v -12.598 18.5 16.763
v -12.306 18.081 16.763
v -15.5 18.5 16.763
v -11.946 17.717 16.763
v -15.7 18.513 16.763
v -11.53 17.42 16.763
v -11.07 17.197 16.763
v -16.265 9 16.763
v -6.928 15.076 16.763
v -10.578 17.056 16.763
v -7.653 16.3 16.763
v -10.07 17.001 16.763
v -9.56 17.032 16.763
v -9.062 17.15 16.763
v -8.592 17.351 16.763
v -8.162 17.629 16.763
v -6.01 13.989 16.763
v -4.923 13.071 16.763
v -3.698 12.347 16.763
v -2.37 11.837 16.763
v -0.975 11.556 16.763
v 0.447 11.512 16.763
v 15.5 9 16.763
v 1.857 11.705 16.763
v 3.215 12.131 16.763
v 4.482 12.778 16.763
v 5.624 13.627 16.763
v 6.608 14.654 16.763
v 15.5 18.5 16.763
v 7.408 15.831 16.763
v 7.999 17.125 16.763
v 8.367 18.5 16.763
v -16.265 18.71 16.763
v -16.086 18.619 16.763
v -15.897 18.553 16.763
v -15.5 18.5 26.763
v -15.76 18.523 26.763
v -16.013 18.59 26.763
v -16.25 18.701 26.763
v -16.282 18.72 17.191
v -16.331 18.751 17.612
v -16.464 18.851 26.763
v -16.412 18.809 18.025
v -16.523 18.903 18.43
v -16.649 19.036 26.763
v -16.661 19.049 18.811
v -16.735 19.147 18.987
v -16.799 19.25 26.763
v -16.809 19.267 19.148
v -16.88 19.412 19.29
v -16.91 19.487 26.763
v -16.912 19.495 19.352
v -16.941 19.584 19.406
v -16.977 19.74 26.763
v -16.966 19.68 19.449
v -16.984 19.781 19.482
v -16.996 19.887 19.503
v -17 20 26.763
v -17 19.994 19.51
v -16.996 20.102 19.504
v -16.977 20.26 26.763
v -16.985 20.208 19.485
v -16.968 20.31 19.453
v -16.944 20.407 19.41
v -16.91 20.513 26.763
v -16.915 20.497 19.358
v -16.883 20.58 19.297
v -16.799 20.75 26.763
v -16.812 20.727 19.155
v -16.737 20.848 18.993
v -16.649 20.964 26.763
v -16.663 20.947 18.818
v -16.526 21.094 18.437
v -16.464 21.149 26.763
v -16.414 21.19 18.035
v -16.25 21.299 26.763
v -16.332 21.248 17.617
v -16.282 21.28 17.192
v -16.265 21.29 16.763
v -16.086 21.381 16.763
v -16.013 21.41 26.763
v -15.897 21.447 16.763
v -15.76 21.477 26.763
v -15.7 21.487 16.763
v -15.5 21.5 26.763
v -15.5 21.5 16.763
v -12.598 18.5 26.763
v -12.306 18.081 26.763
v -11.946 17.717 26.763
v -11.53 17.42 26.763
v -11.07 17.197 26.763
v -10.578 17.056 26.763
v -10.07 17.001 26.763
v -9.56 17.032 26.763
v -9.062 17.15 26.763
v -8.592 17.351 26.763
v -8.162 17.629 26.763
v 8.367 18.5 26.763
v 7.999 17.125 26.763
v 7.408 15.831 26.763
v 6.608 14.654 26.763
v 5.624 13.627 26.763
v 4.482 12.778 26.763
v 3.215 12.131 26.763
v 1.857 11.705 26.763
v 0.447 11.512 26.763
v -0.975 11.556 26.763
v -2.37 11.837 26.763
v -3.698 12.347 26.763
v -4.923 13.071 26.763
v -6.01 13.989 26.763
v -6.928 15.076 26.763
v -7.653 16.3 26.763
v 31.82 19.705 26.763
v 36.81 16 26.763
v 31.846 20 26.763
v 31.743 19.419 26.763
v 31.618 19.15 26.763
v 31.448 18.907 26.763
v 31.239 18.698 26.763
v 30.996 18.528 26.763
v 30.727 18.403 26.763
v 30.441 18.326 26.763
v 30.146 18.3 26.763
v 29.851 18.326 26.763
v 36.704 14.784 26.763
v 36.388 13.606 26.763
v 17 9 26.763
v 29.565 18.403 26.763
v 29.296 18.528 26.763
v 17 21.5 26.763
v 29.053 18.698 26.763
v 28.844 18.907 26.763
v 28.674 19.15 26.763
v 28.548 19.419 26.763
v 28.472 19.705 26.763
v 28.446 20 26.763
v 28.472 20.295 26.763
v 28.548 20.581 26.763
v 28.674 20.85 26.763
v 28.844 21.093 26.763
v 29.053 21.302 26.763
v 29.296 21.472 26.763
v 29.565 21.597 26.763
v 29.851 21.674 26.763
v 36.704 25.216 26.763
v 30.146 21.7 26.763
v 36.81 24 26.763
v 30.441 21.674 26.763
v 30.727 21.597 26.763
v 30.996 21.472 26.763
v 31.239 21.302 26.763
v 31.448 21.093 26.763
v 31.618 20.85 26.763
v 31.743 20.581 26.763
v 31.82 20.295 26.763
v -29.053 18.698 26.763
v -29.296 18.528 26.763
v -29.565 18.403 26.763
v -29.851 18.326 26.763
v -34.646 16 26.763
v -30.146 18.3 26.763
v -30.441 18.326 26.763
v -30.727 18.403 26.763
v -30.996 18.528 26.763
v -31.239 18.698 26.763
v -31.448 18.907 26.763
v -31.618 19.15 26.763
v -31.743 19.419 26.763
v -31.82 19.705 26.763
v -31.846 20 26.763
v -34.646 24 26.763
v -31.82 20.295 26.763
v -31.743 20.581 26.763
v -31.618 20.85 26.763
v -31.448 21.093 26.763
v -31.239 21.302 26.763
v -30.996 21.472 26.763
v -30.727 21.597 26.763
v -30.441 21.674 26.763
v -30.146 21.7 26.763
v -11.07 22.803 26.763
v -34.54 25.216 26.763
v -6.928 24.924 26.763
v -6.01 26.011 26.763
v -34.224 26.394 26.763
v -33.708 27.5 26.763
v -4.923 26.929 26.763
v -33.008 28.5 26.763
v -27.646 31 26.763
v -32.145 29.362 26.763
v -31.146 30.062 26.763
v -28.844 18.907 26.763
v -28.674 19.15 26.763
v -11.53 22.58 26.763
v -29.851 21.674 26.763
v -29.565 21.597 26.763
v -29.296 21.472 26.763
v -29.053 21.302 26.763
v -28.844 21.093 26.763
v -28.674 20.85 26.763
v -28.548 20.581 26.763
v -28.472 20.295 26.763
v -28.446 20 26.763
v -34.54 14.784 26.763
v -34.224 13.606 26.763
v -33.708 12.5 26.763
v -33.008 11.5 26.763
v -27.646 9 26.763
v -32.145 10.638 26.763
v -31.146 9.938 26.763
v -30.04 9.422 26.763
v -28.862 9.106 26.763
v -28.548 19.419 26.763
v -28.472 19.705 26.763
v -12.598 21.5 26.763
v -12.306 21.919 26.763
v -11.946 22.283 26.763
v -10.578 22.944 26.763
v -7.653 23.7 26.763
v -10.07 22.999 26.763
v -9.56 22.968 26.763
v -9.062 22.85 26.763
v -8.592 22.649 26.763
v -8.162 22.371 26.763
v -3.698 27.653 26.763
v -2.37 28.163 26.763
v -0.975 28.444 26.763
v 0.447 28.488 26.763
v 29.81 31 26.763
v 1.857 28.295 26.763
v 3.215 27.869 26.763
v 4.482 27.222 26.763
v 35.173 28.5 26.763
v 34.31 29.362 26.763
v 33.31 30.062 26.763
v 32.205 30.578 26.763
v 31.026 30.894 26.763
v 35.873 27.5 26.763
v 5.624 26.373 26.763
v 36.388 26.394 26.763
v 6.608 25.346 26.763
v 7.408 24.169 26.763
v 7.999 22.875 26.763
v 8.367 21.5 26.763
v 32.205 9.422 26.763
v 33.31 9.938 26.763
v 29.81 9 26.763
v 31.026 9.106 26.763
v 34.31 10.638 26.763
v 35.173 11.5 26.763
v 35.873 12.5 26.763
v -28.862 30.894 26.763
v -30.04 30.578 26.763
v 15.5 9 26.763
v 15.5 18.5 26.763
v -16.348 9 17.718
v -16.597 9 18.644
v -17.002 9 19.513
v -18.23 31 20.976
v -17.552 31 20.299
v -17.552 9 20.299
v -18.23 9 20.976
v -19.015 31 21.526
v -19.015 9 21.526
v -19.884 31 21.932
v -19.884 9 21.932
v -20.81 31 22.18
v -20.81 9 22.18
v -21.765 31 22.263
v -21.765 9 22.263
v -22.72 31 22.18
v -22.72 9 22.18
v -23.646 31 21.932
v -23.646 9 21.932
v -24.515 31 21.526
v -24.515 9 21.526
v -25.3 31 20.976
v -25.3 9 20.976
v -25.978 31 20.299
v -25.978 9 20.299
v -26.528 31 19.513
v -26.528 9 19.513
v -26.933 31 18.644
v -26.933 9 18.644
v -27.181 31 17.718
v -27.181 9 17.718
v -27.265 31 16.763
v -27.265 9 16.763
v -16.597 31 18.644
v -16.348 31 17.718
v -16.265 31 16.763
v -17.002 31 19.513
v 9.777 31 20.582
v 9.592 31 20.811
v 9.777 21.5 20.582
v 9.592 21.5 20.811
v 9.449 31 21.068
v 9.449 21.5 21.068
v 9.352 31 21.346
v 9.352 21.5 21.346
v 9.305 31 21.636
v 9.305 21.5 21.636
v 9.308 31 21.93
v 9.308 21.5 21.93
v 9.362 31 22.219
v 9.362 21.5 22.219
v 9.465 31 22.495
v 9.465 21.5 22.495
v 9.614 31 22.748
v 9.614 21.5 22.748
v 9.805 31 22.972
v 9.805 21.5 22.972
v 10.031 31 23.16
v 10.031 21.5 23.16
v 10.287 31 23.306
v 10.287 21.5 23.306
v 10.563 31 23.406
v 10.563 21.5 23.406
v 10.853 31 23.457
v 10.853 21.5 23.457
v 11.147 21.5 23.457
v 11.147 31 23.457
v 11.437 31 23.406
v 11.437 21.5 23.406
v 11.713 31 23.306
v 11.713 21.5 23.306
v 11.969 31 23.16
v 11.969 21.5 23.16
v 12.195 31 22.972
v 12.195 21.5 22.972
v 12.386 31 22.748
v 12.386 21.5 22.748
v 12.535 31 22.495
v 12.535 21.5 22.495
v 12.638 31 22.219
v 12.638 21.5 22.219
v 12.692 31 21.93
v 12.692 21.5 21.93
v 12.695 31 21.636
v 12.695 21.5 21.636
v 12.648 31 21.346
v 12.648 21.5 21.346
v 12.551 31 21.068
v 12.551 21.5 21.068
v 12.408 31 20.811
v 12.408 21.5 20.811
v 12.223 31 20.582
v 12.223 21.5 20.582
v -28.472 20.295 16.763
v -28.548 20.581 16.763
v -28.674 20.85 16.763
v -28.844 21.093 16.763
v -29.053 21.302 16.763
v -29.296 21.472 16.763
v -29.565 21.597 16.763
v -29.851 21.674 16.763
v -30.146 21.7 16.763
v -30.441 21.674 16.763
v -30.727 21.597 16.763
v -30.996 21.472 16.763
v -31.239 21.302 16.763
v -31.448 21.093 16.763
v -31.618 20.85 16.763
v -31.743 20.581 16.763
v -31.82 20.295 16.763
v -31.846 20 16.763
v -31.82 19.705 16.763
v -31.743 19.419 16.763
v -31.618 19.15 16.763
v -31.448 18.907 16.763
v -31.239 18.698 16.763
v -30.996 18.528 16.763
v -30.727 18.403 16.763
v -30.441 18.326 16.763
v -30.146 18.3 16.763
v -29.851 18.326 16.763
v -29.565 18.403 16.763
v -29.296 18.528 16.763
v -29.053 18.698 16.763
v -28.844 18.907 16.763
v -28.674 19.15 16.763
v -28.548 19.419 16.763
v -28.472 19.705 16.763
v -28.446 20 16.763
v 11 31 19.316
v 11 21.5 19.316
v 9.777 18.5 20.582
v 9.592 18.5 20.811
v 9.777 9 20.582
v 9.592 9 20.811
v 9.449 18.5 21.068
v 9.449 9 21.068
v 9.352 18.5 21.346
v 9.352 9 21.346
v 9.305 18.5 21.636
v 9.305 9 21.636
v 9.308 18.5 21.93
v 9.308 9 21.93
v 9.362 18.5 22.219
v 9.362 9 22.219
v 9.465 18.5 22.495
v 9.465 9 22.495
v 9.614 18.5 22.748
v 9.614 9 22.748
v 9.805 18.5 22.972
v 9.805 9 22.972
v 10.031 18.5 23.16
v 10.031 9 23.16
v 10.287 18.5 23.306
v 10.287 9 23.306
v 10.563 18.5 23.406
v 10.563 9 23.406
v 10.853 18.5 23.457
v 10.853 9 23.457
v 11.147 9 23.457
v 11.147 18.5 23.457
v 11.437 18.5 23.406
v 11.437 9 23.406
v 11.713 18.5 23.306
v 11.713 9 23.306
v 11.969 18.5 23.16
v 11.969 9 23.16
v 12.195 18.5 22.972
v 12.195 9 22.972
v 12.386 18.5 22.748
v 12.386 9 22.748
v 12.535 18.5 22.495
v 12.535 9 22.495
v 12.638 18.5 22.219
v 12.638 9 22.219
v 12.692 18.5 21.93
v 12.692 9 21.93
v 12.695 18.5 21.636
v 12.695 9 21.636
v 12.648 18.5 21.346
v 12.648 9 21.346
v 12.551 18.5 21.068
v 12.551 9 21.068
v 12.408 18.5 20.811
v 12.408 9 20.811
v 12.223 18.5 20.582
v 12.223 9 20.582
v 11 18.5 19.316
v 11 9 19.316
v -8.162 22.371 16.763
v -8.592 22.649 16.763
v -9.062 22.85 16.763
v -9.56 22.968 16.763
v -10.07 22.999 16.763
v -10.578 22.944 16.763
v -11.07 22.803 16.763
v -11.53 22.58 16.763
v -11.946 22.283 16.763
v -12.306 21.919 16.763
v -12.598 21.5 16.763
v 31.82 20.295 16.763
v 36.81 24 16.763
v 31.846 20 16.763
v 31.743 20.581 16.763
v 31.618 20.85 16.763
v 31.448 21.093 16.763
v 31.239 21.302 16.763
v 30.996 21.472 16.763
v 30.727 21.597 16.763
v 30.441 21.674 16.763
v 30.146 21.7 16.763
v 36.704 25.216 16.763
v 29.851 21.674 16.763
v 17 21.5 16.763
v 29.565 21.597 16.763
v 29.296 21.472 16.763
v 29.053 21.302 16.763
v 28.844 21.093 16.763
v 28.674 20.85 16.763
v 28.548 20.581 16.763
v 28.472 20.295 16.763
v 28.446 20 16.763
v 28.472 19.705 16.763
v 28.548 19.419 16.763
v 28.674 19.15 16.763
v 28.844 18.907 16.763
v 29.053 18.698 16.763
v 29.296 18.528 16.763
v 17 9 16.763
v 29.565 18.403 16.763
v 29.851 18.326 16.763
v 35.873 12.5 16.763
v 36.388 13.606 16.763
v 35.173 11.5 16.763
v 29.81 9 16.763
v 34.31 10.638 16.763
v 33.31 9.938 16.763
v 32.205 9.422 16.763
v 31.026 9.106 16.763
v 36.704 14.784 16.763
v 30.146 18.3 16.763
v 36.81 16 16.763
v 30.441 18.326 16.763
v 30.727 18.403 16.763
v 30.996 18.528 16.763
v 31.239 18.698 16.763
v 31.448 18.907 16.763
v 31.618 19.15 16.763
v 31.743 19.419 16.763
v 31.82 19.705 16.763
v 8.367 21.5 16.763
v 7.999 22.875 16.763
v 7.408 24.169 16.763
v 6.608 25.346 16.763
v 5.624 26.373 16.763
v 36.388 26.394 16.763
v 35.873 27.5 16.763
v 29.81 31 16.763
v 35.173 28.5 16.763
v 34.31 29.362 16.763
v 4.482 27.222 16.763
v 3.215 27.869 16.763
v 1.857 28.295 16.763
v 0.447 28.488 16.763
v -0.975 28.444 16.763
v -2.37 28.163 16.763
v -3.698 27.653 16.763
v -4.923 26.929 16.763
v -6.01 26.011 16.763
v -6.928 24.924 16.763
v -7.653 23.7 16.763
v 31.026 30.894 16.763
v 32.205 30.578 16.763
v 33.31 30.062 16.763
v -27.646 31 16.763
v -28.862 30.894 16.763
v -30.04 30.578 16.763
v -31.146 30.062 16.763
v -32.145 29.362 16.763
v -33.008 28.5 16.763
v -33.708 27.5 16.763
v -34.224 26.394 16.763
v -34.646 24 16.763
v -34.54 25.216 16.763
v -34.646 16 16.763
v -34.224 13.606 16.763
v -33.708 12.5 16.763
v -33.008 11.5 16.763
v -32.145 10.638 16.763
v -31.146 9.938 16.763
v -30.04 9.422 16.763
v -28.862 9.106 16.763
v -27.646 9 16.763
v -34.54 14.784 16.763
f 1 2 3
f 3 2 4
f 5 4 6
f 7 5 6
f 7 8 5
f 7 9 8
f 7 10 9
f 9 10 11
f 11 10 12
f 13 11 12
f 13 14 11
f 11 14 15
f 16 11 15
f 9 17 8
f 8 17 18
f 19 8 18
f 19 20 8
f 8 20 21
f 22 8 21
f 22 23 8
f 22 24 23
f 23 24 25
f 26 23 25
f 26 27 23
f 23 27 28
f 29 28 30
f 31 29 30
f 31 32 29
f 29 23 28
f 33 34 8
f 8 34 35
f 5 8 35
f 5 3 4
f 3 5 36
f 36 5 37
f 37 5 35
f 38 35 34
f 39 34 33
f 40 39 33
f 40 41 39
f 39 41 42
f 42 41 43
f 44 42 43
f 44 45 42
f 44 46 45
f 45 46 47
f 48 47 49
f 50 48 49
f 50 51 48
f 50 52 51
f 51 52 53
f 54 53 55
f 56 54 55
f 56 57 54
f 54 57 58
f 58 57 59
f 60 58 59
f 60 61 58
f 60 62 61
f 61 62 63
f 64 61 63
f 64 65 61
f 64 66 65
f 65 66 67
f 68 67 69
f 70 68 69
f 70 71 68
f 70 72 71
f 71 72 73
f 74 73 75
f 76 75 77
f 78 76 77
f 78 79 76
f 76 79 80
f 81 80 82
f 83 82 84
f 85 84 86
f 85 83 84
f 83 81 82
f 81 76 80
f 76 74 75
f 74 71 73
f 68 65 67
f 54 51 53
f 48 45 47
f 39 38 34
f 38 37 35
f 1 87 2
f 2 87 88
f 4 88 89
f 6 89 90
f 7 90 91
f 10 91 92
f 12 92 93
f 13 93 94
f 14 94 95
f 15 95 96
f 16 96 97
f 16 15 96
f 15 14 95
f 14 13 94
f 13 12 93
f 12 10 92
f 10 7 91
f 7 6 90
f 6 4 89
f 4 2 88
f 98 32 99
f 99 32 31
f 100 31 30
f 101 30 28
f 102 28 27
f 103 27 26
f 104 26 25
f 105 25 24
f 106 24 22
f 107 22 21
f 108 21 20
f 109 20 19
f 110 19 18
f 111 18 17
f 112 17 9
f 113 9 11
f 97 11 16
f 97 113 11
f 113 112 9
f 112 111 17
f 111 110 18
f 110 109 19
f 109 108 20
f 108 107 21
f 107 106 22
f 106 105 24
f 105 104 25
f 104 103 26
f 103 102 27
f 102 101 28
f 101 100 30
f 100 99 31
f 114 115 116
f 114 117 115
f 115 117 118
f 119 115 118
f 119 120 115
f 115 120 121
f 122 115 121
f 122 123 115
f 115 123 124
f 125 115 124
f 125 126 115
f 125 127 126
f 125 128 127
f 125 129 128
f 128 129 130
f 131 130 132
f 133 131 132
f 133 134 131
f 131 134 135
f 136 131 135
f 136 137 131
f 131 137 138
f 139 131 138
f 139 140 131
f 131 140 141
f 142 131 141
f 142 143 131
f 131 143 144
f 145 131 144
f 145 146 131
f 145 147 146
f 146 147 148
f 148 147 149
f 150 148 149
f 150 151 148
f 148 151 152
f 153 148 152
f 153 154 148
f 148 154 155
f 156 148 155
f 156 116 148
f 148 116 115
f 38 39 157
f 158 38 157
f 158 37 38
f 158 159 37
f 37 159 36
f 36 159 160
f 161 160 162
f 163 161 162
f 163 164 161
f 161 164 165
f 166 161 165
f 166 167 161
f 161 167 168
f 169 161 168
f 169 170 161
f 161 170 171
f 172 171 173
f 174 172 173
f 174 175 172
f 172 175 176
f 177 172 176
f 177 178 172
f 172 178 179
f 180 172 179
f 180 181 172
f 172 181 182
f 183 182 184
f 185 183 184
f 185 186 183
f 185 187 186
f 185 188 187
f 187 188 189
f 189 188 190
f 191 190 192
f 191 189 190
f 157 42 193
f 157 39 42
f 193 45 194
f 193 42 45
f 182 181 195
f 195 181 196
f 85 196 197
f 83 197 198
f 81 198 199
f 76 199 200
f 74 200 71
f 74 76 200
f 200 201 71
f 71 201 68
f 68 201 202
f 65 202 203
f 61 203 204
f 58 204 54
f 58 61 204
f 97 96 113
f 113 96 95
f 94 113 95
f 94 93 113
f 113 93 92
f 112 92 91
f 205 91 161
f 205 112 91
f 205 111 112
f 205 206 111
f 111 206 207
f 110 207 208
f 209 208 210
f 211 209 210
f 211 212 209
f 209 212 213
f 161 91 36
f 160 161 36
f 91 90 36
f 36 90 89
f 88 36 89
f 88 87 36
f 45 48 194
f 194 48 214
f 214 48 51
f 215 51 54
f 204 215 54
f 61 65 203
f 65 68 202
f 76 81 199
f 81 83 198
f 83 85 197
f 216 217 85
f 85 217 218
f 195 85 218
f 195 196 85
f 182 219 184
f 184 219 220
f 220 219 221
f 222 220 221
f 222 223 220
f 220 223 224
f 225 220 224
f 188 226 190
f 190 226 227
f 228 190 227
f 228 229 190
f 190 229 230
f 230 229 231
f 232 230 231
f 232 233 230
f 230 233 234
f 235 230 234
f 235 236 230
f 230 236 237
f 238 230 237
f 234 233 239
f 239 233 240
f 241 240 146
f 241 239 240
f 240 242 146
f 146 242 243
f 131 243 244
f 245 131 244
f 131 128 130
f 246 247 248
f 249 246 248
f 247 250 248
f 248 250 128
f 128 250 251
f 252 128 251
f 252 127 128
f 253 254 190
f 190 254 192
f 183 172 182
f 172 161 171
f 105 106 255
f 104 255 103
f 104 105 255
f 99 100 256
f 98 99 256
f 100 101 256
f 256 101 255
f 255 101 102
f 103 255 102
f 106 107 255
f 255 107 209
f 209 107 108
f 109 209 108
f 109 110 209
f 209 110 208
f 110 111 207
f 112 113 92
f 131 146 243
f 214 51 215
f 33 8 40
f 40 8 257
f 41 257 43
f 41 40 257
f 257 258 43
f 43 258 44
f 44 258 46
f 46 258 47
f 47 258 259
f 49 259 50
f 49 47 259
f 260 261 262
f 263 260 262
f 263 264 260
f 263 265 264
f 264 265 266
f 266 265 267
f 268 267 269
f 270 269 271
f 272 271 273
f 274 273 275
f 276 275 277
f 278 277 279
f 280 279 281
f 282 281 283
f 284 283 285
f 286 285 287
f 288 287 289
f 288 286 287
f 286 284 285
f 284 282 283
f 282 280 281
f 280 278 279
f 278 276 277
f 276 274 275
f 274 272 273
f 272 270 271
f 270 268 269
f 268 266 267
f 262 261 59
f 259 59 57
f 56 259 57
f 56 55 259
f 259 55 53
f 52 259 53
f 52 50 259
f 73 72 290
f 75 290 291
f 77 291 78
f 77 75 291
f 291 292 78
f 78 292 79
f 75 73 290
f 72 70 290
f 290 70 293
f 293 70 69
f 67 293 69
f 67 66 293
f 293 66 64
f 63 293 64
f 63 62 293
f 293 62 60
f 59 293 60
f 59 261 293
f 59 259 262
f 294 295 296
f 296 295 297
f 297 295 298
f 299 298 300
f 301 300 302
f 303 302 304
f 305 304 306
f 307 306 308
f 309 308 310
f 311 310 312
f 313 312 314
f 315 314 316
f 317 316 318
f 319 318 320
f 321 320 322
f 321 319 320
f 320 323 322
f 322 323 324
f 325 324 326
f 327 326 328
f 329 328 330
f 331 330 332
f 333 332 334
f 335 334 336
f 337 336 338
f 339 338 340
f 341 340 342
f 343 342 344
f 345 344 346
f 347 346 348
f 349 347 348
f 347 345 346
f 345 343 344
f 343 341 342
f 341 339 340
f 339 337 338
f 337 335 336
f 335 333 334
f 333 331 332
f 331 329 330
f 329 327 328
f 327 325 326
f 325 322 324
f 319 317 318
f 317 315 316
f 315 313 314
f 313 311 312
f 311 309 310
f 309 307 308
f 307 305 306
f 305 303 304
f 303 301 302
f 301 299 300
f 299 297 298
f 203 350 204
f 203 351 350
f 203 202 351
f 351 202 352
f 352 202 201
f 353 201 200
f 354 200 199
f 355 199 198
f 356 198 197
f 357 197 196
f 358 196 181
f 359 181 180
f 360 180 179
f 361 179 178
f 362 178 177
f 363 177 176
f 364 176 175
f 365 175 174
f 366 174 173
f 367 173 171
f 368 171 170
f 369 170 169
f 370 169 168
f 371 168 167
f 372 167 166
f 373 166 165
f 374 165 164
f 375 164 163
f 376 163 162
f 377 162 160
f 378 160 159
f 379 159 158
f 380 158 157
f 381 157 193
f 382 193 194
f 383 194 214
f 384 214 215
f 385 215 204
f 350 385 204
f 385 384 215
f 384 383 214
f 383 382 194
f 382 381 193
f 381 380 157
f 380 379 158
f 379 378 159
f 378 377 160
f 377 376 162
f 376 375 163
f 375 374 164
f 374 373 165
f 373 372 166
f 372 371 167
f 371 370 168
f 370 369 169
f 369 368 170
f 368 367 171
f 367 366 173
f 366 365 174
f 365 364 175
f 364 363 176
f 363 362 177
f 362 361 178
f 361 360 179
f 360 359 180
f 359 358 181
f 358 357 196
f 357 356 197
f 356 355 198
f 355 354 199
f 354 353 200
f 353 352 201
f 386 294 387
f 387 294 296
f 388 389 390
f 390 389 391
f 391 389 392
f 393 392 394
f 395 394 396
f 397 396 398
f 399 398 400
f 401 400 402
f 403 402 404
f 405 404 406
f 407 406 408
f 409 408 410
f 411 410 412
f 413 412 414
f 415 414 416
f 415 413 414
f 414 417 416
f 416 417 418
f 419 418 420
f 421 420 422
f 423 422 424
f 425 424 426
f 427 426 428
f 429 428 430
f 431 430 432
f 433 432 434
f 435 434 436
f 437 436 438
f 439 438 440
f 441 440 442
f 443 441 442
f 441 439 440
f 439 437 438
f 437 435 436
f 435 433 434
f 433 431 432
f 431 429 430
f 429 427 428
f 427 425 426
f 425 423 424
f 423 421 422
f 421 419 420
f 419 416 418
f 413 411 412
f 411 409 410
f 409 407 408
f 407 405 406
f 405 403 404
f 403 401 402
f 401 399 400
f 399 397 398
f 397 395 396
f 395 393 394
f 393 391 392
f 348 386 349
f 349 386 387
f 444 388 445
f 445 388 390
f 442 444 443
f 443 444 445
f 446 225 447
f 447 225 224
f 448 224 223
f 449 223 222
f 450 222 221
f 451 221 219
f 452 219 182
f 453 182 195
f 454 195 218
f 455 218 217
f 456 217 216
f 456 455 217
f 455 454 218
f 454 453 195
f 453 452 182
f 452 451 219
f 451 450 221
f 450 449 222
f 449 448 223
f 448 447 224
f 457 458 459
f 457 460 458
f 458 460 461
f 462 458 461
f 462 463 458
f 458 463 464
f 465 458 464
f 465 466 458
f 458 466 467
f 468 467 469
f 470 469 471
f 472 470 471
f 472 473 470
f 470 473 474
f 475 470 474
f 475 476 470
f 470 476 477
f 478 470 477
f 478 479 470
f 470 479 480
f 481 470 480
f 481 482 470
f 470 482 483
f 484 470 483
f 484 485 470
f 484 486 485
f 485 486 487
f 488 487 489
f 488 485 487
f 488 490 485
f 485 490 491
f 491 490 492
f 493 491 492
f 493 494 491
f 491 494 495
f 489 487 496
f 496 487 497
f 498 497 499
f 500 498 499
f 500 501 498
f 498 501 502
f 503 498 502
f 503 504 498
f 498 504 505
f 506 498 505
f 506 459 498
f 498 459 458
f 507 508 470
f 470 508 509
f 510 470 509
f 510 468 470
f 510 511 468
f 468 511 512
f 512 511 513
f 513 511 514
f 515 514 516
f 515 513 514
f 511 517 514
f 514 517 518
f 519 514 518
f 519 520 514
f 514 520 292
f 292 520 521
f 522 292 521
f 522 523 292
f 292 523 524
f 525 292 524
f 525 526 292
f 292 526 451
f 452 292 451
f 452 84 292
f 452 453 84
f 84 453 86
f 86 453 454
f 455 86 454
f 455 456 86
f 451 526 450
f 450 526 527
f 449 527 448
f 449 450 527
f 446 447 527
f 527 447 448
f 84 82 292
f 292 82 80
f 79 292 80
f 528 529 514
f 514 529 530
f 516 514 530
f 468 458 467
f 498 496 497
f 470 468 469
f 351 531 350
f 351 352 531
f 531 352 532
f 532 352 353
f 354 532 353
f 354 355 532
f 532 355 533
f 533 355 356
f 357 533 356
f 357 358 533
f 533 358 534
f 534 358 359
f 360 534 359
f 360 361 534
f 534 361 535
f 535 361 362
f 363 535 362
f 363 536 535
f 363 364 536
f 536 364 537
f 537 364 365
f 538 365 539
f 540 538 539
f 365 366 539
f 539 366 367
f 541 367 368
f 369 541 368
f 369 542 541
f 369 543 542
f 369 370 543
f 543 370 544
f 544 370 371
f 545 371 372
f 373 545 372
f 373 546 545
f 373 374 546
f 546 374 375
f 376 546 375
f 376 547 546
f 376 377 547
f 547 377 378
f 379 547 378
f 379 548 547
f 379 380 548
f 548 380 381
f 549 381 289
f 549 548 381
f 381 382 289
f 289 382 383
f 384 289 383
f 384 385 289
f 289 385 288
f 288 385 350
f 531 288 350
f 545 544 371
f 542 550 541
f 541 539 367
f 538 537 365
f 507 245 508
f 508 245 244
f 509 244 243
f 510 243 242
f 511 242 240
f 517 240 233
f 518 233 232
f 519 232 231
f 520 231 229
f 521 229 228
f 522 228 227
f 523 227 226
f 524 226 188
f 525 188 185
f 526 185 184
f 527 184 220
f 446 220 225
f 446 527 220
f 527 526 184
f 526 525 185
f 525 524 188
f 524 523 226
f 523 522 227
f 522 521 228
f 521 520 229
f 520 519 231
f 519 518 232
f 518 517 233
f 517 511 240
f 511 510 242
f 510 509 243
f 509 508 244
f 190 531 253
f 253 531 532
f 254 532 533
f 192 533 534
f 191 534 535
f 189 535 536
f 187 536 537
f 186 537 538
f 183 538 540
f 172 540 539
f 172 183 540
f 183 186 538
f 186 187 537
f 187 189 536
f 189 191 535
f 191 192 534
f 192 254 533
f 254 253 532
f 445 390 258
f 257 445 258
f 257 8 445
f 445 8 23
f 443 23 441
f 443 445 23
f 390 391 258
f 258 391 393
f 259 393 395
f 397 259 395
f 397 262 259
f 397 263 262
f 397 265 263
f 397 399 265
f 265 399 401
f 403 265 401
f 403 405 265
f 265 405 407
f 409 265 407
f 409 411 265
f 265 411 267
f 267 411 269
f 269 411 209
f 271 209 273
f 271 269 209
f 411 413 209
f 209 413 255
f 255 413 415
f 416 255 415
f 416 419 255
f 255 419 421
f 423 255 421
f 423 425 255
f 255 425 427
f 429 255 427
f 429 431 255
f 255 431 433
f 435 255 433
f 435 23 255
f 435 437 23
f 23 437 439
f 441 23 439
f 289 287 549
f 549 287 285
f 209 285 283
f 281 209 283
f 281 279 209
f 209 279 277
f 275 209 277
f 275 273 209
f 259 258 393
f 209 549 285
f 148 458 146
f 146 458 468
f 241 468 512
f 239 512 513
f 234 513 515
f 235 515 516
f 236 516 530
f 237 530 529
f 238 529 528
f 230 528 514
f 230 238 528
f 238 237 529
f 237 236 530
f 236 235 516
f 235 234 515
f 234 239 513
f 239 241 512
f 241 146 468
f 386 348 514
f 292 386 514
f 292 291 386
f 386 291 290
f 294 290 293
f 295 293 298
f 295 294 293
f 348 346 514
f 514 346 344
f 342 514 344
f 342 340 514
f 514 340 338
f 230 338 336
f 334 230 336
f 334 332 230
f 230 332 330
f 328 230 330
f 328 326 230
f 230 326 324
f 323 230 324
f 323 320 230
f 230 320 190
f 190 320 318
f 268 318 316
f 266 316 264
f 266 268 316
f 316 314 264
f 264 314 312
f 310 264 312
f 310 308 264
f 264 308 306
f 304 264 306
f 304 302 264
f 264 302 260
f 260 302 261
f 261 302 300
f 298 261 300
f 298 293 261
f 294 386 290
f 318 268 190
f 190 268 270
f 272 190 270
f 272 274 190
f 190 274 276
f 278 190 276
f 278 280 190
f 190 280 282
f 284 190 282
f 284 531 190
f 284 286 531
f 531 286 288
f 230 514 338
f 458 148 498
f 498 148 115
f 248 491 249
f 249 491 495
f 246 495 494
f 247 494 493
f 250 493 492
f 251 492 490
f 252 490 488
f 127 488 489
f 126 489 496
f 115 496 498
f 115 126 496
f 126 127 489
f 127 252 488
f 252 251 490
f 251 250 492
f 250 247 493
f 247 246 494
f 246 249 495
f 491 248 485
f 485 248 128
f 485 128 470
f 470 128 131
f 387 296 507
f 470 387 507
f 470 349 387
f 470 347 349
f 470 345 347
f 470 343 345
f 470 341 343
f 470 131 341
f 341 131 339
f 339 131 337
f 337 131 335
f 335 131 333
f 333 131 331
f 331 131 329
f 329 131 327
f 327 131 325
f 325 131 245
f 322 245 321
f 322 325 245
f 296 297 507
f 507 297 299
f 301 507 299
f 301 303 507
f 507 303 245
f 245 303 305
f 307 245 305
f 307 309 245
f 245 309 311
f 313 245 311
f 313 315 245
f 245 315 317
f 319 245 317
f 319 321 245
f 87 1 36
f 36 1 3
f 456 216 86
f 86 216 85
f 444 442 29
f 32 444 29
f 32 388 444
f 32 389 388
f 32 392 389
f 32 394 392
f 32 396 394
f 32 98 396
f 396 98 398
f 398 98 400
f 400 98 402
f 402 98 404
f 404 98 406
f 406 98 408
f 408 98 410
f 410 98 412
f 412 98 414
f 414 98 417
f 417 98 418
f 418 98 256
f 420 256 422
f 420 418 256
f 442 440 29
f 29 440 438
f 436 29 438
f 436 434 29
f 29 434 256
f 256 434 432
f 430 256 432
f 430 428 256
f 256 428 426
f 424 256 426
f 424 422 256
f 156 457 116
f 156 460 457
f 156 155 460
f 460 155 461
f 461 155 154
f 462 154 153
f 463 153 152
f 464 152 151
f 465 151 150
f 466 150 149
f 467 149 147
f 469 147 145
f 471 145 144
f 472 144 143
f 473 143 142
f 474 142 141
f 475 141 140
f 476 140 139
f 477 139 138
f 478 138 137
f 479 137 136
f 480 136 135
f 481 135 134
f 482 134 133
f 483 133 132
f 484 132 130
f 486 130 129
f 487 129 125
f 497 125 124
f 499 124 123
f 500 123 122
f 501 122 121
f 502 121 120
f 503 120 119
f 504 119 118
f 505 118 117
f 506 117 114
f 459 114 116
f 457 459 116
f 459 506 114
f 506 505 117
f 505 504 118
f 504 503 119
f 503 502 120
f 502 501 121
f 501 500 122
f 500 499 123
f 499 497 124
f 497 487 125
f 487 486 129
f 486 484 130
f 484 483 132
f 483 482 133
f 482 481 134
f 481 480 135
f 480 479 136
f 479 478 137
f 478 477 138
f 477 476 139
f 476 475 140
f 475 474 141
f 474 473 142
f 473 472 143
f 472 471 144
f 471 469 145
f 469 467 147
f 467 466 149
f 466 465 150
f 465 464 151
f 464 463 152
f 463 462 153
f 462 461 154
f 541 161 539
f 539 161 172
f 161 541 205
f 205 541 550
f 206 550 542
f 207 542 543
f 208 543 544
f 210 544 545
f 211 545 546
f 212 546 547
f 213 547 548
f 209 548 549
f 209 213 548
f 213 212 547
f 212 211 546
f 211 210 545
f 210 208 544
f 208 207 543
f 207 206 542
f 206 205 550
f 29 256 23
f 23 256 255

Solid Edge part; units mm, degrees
sketch "Sketch1" plane through (0, 0, 16.7632) normal (0, 0, 1) x (1, 0, 0)
  circle A0 centre (-30.146, 20) radius 1.7
  circle A1 centre (30.146, 20) radius 1.7
  line L0 (-27.646, 31) -> (29.8105, 31)
  arc A2 (29.8105, 31) -> (36.8105, 24) centre (29.8105, 24) cw
  line L1 (36.8105, 24) -> (36.8105, 16)
  arc A3 (29.8105, 9) -> (36.8105, 16) centre (29.8105, 16) ccw
  line L2 (29.8105, 9) -> (17, 9)
  line L3 (17, 18.5) -> (17, 9)
  line L4 (17, 21.5) -> (17, 18.5)
  line L5 (8.3666, 21.5) -> (17, 21.5)
  arc A4 (-8.3666, 21.5) -> (8.3666, 21.5) centre (0, 20) cw
  line L6 (-15.5, 21.5) -> (-8.3666, 21.5)
  line L7 (-8.3666, 18.5) -> (-15.5, 18.5)
  line L8 (15.5, 18.5) -> (8.3666, 18.5)
  line L9 (15.5, 18.5) -> (15.5, 9)
  line L10 (15.5, 9) -> (-27.646, 9)
  arc A5 (-34.646, 16) -> (-27.646, 9) centre (-27.646, 16) ccw
  line L11 (-34.646, 16) -> (-34.646, 24)
  arc A6 (-34.646, 24) -> (-27.646, 31) centre (-27.646, 24) cw
  arc A7 (-15.5, 21.5) -> (-15.5, 18.5) centre (-15.5, 20) ccw
  arc A8 (-8.3666, 18.5) -> (8.3666, 18.5) centre (0, 20) ccw
extrude "ExtrudedProtrusion_1" add sketch "Sketch1" along normal blind 10
sketch "Sketch2" plane through (-6.073, 9, 21.7632) normal (0, -1, 0) x (1, 0, 0)
  circle A0 centre (-15.6919, -5) radius 5.5
  dimension "D1" = 11
extrude "Cutout1" cut sketch "Sketch2" against normal up to next
sketch "Sketch3" plane through (-6.073, 9, 21.7632) normal (0, -1, 0) x (1, 0, 0)
  line L0 (15.8501, -1.1809) -> (17.073, -2.4472)
  line L1 (17.073, -2.4472) -> (18.2959, -1.1809)
  arc A0 (15.8501, -1.1809) -> (18.2959, -1.1809) centre (17.073, 0) cw
extrude "Cutout2" cut sketch "Sketch3" against normal through all
sketch "Sketch4" plane through (1.0823, 20, 26.7632) normal (0, 0, 1) x (1, 0, 0)
  circle A0 centre (-11.0823, 0) radius 3
  dimension "D1" = 10
  dimension "D2" = 6
extrude "Cutout3" cut sketch "Sketch4" against normal through all
